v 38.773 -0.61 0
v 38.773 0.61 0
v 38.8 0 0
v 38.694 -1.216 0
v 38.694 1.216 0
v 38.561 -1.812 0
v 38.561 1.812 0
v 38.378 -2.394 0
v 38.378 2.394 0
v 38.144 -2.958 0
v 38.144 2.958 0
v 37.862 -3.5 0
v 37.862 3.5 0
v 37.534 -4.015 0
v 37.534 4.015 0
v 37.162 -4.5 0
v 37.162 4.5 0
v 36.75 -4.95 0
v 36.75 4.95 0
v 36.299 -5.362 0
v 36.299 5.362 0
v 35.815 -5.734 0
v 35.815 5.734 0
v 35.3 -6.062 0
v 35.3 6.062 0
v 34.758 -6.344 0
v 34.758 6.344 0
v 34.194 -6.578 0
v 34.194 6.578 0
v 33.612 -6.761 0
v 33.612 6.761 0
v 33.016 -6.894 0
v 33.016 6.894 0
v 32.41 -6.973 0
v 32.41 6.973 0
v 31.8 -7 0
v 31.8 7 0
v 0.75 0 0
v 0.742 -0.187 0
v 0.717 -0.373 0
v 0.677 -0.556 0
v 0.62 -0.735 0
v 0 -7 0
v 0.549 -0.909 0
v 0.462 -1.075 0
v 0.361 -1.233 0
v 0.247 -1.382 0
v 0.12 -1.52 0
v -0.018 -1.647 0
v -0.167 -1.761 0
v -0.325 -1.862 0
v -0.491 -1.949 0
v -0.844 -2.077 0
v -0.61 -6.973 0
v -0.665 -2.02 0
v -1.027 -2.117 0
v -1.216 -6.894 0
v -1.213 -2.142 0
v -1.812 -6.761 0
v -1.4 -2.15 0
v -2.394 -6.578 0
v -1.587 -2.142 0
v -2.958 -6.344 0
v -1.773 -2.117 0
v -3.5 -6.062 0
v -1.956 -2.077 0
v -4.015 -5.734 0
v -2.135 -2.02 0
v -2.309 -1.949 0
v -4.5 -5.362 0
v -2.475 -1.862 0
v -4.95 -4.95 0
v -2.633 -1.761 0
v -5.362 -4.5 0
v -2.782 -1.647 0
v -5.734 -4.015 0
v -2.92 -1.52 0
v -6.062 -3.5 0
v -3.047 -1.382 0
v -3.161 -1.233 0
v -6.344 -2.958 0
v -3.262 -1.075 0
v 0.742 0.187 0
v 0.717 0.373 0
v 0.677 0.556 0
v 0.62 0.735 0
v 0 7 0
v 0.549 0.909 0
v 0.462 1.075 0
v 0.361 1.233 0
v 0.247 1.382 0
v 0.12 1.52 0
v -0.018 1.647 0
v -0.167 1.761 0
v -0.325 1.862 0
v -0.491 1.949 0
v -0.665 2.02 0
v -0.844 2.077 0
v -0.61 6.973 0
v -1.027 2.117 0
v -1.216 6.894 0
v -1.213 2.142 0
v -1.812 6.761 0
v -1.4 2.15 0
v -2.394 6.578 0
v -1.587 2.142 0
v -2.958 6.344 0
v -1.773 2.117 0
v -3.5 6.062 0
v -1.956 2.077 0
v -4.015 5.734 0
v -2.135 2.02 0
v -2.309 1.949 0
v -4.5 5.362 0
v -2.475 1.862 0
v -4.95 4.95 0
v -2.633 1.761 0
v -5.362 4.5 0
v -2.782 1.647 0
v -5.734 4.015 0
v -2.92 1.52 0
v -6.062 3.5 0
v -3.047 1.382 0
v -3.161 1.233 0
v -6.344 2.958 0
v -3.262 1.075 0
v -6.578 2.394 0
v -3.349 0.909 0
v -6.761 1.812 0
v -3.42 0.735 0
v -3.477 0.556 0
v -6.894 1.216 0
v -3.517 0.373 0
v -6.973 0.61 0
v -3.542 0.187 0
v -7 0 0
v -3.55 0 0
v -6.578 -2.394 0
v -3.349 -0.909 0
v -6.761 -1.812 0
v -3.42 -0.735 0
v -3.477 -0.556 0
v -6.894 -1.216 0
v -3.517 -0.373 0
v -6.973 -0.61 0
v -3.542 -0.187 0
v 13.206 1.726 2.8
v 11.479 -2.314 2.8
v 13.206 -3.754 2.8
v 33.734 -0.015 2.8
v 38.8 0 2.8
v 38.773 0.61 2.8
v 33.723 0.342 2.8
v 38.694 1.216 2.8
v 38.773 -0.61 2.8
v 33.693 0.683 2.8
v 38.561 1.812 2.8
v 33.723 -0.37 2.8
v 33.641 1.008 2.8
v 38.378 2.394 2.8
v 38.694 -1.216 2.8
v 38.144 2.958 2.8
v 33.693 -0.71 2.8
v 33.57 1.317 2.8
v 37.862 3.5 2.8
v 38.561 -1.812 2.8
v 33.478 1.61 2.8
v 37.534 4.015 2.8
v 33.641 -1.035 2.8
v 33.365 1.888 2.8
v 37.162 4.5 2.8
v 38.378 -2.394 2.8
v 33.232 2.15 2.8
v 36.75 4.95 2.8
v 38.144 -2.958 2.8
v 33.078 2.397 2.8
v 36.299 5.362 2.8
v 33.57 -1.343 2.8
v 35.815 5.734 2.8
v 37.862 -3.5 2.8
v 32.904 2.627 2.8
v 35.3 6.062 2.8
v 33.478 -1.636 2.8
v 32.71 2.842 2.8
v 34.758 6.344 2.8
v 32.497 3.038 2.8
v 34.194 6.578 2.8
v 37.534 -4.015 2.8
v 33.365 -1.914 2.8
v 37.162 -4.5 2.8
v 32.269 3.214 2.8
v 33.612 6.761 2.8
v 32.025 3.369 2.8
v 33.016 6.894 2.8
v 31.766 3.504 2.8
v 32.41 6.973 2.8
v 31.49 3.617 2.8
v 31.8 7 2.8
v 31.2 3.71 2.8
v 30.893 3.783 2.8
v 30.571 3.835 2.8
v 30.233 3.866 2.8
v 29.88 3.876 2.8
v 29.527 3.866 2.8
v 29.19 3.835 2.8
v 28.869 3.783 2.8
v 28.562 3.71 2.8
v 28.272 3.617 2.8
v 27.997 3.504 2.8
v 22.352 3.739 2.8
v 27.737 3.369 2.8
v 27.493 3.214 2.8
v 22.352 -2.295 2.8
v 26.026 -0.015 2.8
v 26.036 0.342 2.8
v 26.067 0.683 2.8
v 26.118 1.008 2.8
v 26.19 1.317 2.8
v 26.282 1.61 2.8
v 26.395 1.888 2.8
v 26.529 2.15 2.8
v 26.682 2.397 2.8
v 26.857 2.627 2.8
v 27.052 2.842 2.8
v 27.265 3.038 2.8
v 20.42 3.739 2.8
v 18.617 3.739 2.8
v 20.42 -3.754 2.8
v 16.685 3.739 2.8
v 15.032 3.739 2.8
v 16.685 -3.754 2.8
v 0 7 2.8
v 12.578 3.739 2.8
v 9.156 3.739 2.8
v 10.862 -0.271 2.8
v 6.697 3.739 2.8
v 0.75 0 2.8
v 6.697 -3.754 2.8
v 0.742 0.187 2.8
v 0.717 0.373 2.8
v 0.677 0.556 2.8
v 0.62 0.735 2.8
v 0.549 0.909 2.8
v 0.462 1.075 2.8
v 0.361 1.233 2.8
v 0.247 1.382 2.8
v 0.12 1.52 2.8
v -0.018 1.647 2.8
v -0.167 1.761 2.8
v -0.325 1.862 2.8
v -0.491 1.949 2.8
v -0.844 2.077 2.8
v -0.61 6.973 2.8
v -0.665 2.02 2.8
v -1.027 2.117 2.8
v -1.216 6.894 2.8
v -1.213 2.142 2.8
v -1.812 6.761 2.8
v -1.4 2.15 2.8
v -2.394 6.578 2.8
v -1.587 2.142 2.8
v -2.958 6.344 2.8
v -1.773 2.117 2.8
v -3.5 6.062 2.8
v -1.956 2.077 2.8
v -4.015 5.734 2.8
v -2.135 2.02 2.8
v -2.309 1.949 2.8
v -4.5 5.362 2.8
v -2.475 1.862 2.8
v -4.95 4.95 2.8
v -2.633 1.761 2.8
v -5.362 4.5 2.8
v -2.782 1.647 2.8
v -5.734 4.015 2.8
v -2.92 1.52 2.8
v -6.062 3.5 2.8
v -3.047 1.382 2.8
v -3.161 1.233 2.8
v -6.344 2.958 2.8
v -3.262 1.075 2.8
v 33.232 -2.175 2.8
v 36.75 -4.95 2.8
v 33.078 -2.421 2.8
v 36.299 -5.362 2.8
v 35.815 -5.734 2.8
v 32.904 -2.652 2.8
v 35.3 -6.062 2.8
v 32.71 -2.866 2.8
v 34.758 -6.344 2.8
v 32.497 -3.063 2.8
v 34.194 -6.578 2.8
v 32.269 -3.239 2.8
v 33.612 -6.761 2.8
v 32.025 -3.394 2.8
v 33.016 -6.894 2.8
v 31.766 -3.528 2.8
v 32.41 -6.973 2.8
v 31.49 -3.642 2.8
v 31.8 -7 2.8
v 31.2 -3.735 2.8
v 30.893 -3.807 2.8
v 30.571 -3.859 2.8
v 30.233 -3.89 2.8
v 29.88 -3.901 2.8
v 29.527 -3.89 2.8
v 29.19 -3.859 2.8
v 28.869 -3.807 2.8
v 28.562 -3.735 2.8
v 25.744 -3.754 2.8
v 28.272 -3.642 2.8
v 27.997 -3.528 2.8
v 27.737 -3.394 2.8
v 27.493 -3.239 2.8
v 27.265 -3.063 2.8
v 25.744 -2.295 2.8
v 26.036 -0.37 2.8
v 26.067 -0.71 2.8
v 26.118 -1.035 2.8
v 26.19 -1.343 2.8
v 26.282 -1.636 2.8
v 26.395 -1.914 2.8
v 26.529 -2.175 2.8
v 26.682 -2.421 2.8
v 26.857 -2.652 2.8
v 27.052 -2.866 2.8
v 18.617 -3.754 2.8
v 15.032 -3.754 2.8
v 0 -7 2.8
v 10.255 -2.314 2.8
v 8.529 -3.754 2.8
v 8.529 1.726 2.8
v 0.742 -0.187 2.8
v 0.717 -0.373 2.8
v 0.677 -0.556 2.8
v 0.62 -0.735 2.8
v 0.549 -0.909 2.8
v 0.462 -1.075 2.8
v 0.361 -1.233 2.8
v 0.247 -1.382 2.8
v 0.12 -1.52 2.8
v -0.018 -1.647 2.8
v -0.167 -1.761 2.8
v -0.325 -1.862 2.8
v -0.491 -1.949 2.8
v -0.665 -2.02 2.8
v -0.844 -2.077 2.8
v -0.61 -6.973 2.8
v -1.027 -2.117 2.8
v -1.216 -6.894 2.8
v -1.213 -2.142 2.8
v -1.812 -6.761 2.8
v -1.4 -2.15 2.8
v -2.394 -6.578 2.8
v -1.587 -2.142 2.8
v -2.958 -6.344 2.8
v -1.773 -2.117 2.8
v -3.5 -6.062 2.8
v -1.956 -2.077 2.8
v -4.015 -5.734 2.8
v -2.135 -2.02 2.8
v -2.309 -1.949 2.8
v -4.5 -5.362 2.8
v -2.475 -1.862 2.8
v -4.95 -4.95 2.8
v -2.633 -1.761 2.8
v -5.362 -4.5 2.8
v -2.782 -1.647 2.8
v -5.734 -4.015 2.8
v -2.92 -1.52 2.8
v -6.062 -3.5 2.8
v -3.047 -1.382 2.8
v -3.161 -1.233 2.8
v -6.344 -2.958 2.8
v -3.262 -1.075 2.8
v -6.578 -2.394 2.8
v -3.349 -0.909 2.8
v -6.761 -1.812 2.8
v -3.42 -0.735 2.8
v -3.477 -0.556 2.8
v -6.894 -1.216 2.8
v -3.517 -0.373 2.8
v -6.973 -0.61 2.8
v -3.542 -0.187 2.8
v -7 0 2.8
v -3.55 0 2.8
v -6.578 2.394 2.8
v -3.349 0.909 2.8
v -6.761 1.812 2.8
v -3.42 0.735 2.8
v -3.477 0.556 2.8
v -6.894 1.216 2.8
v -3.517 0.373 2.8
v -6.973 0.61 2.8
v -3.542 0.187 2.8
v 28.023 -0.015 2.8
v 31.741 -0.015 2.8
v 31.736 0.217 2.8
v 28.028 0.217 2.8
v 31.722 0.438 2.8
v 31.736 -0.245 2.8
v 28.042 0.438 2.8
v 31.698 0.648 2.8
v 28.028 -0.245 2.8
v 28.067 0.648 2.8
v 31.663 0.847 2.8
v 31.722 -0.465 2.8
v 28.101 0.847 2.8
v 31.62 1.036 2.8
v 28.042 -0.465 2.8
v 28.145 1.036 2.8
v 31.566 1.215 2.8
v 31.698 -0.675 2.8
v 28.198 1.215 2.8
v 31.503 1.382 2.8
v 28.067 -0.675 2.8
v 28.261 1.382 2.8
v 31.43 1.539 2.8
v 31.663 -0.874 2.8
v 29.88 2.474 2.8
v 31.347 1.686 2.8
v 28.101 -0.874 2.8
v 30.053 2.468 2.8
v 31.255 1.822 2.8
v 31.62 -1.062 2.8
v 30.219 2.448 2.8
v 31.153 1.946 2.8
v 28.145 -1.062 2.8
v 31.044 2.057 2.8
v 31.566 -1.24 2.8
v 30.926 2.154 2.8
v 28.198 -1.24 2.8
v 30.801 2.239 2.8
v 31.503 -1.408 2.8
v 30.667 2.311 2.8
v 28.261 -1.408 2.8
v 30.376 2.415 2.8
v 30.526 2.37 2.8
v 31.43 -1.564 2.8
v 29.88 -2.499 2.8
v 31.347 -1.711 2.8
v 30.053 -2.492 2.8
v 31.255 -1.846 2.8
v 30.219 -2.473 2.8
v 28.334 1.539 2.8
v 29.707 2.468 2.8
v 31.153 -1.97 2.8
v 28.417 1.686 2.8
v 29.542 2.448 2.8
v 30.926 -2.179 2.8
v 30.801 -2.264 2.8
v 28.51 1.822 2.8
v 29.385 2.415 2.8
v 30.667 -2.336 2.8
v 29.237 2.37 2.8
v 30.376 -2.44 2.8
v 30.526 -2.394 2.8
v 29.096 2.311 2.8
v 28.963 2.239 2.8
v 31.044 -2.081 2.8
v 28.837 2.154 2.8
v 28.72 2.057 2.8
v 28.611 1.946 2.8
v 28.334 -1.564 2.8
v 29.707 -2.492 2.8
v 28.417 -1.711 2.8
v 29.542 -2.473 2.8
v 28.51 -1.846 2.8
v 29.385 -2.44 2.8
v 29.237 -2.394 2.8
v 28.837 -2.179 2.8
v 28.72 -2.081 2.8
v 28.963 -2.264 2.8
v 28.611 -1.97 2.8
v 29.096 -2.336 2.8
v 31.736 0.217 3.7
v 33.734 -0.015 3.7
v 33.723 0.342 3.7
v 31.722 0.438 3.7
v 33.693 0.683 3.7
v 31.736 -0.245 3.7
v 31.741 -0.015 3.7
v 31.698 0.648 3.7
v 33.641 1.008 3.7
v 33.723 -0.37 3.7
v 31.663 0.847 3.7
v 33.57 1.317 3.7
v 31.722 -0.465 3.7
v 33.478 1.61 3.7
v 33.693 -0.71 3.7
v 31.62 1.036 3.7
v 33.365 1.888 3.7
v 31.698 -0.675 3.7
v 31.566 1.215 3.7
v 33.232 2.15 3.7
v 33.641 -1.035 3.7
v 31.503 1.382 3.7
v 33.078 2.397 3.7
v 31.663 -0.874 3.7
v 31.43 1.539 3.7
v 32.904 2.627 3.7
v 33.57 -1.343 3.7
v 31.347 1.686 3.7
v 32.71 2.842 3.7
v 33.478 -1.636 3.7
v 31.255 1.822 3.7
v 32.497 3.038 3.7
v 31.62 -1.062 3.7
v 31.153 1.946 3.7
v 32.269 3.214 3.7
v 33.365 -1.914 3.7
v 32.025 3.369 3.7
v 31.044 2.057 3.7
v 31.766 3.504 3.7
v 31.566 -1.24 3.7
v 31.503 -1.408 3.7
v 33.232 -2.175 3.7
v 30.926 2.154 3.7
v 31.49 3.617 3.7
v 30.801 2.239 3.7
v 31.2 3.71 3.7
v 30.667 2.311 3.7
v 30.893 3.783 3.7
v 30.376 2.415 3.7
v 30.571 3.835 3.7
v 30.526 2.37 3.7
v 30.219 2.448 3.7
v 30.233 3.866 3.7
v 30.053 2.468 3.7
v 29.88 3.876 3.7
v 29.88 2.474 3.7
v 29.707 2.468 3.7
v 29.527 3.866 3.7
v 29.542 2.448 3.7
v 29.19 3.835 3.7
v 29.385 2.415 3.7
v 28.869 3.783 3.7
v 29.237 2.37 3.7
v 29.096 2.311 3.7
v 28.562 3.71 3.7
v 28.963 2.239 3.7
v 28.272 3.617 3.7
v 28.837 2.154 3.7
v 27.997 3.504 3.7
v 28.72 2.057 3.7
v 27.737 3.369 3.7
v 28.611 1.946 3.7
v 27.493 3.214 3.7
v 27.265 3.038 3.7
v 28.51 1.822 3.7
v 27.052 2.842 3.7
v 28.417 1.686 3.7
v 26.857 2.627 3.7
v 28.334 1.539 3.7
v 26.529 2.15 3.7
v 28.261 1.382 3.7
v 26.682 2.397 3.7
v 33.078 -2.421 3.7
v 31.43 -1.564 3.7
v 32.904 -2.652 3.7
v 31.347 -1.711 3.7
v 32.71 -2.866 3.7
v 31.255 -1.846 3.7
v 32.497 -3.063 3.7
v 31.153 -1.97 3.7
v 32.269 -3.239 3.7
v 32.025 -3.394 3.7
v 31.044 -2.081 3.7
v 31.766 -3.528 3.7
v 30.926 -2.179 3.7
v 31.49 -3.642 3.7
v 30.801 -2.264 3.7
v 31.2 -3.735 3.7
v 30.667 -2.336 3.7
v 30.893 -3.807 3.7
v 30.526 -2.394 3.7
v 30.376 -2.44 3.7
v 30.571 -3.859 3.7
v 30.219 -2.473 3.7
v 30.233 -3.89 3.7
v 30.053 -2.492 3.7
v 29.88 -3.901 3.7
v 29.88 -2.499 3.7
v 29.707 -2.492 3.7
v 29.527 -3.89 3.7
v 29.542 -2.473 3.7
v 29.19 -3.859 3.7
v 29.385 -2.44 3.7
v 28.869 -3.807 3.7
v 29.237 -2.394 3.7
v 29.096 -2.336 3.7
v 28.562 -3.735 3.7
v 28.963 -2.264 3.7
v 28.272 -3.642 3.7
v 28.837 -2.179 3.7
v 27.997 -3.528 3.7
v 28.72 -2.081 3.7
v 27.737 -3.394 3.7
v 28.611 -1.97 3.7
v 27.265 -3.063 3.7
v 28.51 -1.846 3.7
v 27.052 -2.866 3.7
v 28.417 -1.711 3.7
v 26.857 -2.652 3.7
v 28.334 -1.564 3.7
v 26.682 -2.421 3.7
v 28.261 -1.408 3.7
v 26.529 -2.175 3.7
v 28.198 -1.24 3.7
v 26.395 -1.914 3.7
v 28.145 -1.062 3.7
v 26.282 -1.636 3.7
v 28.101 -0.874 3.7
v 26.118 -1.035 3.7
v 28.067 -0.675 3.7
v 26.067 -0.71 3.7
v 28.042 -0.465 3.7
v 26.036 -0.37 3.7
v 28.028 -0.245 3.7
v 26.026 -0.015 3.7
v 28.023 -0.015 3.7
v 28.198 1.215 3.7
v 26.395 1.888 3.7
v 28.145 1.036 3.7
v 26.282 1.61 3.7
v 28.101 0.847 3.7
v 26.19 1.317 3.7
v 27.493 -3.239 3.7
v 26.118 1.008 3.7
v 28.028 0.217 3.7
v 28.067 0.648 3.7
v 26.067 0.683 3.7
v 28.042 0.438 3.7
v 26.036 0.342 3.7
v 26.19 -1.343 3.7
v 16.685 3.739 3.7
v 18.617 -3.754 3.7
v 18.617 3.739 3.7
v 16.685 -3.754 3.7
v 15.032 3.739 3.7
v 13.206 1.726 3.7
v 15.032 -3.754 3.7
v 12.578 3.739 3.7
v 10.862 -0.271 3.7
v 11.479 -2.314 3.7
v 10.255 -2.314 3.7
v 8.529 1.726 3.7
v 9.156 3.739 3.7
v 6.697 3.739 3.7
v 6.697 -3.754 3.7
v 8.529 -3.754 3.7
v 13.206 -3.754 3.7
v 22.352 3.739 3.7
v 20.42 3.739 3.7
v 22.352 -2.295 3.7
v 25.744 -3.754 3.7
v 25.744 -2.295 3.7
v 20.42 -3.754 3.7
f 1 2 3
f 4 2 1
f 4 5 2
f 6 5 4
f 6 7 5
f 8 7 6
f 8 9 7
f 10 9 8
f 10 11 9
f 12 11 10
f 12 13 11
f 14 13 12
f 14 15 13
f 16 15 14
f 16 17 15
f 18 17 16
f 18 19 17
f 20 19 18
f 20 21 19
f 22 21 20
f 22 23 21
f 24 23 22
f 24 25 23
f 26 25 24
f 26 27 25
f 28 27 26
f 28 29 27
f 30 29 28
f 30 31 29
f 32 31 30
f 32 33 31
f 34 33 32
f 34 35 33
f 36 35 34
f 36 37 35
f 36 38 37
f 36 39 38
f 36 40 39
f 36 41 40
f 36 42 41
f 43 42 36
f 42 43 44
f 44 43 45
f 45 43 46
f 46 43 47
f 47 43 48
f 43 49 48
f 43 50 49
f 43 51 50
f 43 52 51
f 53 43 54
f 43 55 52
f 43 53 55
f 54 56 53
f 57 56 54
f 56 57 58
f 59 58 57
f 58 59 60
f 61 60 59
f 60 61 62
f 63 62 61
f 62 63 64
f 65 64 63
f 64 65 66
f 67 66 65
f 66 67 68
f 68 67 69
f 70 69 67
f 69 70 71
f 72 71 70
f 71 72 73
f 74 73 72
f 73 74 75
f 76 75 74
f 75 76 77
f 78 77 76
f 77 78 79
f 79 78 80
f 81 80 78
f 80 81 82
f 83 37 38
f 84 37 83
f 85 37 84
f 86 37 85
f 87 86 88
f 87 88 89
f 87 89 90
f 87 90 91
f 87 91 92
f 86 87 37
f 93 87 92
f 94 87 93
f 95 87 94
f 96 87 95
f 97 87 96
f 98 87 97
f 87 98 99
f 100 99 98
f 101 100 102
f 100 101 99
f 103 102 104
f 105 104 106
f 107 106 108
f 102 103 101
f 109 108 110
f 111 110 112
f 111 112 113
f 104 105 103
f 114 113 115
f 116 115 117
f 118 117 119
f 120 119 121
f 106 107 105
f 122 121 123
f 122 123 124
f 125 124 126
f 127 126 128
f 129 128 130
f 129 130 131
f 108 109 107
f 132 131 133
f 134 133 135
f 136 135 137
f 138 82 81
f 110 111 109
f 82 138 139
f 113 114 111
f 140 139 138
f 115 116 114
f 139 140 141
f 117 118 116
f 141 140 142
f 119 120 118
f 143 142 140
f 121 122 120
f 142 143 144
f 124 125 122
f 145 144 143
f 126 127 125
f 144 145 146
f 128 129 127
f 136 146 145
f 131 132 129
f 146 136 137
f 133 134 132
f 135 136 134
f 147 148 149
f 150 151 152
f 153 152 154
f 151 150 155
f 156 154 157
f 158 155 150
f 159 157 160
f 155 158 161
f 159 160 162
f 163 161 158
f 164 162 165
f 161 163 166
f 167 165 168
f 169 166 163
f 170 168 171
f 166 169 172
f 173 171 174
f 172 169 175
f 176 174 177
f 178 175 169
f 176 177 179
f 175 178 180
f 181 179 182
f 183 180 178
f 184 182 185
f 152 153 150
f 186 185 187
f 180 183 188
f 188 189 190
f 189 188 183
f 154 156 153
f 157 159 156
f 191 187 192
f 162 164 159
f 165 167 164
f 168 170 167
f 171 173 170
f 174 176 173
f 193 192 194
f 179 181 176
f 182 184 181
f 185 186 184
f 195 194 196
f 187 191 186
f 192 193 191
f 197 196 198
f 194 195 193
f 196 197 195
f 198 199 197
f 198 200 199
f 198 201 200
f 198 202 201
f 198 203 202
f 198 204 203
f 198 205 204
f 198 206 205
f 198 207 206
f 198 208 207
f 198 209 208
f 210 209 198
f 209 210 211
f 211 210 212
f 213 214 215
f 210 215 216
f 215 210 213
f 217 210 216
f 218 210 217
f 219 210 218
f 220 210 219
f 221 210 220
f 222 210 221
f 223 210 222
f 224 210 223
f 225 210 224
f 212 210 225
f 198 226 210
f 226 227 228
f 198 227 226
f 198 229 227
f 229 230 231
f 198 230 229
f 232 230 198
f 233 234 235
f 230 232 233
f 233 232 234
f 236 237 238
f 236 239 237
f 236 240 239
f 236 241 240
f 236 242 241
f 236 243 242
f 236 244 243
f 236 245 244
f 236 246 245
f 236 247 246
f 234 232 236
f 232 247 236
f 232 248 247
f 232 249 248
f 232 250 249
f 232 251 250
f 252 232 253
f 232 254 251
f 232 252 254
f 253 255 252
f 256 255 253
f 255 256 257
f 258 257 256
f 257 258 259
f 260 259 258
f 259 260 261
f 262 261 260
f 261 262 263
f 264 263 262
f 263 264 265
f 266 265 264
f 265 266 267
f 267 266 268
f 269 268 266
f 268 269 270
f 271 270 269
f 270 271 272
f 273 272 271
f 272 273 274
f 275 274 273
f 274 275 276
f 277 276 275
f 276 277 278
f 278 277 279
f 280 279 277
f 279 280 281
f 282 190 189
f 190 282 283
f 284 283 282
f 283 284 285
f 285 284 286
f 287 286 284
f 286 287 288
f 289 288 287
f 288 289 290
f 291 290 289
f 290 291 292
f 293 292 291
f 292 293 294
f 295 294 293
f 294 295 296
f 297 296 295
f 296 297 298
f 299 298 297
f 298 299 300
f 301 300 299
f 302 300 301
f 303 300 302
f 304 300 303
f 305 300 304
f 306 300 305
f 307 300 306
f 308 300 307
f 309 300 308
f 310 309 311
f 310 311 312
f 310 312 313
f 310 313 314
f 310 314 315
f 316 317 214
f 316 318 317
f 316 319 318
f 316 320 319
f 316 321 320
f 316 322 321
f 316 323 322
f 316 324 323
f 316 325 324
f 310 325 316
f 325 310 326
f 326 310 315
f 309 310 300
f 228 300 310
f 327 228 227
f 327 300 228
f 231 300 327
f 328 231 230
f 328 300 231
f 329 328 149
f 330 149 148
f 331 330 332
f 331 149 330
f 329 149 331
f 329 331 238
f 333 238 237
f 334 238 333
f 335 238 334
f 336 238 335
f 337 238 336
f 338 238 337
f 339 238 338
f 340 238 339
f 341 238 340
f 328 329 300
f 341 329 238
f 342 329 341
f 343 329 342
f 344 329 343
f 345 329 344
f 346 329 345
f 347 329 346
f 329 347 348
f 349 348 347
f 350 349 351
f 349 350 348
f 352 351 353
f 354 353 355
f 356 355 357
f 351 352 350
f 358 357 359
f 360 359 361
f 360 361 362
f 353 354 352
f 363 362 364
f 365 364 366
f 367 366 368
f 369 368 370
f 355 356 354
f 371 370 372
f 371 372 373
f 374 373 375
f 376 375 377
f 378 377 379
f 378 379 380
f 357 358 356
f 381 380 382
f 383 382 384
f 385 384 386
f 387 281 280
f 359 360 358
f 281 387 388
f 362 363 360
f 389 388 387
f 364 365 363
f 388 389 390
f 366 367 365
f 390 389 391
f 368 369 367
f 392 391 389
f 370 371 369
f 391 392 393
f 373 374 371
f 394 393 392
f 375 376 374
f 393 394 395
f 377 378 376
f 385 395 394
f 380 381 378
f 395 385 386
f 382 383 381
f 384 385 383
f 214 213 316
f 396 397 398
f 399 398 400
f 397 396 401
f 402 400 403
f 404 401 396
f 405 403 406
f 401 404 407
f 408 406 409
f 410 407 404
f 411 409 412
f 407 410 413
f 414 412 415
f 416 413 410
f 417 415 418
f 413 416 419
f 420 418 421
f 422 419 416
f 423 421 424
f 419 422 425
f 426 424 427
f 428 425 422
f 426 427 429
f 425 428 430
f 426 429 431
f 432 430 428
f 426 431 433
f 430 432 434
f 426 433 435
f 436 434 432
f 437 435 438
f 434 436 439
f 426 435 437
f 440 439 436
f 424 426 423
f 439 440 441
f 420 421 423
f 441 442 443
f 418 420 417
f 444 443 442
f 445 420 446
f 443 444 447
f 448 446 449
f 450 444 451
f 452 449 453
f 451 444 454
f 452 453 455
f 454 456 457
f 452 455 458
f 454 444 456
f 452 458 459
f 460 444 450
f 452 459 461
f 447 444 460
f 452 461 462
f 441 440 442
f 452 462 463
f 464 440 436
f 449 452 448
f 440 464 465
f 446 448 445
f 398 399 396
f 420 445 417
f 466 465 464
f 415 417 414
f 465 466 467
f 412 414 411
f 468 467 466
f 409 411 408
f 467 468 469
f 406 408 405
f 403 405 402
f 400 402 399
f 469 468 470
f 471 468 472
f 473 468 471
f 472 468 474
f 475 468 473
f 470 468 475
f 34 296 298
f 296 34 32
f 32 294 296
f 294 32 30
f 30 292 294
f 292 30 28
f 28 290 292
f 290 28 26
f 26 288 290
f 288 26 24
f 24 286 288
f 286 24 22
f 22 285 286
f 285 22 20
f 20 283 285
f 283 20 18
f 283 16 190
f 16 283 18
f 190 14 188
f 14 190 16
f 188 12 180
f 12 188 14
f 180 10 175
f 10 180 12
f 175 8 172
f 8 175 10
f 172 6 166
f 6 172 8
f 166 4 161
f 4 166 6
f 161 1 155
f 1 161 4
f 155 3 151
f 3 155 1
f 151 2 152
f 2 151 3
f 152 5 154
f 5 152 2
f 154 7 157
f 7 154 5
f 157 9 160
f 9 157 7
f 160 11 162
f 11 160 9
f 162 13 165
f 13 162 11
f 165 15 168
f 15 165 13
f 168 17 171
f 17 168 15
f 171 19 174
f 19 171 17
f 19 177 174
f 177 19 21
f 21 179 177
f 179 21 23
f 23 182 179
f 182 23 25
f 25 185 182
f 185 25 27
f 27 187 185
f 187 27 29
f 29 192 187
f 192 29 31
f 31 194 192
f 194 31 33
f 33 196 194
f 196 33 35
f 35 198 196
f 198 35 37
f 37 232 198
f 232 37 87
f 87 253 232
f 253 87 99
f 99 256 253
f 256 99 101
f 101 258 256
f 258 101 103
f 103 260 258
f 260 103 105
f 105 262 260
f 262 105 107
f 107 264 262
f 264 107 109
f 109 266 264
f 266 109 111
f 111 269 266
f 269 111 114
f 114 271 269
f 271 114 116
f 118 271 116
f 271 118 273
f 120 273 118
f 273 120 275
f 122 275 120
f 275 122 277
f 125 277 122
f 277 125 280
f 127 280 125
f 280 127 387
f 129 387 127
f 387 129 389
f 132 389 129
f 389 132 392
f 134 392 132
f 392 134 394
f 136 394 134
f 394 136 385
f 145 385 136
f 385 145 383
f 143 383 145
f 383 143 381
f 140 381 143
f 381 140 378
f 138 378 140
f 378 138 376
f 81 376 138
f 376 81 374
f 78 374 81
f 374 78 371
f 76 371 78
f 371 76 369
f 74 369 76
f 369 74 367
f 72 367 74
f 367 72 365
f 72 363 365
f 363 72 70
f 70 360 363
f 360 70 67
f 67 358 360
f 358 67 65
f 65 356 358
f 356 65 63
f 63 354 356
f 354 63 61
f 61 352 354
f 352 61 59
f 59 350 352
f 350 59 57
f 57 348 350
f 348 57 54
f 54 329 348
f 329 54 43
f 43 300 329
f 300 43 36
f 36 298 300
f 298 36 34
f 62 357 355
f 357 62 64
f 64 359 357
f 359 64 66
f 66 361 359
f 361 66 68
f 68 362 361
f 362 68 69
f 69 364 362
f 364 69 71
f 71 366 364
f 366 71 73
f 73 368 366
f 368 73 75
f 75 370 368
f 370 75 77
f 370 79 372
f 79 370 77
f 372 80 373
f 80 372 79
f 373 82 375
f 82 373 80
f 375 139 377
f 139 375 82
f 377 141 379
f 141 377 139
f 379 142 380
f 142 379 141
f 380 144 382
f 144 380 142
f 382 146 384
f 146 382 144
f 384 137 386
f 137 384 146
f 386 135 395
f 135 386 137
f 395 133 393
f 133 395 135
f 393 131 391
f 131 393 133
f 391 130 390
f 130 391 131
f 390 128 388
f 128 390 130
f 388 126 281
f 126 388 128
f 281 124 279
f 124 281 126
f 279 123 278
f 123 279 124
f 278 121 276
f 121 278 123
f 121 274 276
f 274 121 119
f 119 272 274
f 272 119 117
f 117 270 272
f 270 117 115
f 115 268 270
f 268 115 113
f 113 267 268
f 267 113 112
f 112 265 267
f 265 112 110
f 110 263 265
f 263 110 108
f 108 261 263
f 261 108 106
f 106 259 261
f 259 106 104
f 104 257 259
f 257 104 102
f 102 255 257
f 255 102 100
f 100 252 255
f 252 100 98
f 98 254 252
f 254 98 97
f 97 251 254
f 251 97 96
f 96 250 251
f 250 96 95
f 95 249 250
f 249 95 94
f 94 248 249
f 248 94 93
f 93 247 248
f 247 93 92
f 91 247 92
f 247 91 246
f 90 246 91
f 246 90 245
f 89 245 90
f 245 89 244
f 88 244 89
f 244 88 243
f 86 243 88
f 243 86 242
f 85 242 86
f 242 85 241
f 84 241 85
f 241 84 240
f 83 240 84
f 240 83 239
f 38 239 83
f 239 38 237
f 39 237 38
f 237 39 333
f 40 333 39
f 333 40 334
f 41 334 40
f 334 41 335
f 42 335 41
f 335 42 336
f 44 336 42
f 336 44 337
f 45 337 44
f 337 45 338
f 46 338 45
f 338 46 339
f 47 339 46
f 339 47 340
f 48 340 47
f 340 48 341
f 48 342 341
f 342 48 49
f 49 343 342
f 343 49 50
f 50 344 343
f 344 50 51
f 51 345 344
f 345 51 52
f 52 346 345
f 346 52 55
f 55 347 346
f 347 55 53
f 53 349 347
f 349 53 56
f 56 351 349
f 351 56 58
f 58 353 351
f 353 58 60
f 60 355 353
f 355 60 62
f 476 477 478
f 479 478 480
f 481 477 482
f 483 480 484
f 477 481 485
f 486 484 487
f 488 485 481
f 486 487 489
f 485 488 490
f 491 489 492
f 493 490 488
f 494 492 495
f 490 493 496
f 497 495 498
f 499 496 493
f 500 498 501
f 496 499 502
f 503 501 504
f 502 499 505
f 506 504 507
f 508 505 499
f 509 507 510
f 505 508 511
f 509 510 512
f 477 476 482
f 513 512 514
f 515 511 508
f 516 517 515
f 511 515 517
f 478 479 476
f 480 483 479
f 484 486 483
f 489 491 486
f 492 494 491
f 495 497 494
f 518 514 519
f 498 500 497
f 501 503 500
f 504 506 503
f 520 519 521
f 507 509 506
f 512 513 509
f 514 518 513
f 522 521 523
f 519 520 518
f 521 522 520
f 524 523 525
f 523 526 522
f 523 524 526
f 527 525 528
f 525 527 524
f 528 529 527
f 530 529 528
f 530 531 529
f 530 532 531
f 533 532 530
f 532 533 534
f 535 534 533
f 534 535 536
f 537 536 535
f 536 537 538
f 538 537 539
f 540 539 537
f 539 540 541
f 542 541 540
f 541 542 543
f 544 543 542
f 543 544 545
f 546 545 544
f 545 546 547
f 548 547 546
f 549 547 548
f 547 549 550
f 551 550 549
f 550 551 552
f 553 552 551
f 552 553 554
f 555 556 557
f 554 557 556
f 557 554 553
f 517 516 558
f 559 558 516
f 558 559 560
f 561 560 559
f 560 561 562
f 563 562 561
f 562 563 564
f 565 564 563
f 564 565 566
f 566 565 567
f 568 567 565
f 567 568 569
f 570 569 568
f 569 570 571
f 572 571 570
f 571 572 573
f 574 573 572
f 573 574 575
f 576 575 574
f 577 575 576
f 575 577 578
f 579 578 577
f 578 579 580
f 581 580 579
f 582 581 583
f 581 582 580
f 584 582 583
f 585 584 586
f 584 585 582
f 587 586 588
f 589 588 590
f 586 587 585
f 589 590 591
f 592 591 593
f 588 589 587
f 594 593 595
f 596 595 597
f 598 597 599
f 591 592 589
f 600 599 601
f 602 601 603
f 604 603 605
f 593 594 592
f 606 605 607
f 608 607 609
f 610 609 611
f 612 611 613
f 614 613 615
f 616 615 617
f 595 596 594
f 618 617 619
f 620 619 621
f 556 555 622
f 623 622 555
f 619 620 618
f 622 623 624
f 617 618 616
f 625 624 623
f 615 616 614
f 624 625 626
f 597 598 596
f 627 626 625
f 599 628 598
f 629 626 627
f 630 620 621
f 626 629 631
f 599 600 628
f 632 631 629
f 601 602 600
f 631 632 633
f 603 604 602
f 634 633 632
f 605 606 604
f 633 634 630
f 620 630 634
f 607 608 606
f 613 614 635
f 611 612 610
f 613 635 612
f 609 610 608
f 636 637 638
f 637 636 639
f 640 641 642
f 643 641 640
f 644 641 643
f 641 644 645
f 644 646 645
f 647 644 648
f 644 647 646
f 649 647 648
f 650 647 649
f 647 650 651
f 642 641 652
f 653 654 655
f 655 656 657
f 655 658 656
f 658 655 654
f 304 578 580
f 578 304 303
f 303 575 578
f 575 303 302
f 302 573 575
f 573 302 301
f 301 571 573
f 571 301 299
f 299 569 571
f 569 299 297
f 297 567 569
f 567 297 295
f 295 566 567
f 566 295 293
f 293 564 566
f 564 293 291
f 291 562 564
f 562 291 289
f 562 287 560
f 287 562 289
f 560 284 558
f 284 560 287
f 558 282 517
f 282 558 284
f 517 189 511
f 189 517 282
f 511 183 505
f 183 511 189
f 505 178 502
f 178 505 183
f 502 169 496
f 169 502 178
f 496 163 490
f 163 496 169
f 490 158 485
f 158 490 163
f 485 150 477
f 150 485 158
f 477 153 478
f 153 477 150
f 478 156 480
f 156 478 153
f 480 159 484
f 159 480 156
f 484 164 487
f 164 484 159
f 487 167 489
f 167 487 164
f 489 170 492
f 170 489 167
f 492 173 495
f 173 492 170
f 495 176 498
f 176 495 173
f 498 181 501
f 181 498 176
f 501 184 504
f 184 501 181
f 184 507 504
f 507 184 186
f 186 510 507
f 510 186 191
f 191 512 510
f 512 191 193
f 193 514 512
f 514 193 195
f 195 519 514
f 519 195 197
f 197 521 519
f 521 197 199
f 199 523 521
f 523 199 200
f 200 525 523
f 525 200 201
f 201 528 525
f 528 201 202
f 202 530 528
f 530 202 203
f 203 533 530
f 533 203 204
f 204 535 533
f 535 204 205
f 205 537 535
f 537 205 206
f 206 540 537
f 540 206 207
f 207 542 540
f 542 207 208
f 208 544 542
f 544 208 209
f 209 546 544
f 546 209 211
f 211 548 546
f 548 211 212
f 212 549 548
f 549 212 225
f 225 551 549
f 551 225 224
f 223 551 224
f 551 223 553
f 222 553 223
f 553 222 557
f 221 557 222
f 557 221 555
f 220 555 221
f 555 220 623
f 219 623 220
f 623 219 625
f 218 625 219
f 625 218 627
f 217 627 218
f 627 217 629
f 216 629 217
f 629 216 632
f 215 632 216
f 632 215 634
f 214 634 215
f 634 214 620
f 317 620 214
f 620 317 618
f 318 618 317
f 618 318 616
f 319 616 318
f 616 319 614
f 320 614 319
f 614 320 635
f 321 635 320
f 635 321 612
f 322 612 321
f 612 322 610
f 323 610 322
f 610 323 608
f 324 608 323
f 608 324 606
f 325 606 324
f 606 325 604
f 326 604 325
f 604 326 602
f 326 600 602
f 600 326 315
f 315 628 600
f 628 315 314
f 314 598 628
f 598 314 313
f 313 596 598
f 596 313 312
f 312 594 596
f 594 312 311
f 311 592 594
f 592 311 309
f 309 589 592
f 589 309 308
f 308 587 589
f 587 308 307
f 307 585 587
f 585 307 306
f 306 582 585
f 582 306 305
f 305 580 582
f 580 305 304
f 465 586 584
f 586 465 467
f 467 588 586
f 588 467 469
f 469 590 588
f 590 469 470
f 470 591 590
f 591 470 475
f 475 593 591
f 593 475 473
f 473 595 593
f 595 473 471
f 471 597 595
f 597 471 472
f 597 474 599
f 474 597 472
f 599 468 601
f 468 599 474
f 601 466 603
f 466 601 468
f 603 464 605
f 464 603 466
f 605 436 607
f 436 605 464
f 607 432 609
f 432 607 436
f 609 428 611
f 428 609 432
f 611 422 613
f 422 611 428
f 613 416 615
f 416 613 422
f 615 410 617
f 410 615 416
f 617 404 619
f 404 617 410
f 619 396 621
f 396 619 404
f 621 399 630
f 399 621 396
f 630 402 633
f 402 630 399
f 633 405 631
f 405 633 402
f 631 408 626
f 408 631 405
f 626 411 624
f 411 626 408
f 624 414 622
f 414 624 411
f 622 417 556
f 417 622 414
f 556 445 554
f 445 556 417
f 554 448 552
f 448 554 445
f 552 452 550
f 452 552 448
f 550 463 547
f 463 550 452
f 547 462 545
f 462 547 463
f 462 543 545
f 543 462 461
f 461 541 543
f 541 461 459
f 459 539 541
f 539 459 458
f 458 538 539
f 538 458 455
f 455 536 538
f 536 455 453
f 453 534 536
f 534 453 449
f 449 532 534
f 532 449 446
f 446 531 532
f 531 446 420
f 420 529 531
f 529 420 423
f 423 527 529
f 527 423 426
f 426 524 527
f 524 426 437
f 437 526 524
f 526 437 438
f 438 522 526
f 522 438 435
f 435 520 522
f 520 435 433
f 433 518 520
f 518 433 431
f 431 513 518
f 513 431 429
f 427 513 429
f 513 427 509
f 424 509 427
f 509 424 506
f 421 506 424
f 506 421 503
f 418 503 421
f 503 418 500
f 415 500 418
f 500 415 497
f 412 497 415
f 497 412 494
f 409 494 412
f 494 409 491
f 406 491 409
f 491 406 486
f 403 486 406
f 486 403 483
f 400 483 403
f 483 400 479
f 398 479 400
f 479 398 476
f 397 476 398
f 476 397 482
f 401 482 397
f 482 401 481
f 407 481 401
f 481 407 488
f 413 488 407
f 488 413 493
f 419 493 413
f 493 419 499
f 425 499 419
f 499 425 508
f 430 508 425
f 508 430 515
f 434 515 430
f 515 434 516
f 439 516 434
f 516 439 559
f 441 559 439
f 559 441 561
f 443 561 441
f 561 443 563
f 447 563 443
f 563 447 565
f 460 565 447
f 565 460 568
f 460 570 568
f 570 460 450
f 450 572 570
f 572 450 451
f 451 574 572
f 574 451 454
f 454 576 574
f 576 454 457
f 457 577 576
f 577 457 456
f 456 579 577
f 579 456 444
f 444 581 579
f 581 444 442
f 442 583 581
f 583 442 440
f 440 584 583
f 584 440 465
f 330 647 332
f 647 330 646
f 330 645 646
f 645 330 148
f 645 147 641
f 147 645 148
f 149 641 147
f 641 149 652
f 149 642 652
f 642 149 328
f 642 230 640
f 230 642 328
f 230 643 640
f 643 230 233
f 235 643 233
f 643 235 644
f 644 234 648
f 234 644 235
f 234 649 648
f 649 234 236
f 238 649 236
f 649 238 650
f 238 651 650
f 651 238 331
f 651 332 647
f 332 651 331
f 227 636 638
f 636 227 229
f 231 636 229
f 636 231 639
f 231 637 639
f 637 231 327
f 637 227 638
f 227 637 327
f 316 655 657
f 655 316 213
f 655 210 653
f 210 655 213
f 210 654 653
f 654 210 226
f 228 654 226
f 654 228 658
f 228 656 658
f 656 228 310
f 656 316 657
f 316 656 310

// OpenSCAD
// Units: millimetres. Change the name then render (F6) and export STL.
label = "MILO";
$fn = 72;
height = 14;
length = max(43, len(label)*8.2 + 13);
union() {
  linear_extrude(height=2.8)
    difference() {
      hull() for (x=[0,length-height]) translate([x,0]) circle(d=height);
      translate([-1.4,0]) circle(d=4.3);
    }
  translate([length/2-3,-.1,2.75])
    linear_extrude(height=.95)
      text(label,size=7.4,font="DejaVu Sans:style=Bold",halign="center",valign="center");
}
